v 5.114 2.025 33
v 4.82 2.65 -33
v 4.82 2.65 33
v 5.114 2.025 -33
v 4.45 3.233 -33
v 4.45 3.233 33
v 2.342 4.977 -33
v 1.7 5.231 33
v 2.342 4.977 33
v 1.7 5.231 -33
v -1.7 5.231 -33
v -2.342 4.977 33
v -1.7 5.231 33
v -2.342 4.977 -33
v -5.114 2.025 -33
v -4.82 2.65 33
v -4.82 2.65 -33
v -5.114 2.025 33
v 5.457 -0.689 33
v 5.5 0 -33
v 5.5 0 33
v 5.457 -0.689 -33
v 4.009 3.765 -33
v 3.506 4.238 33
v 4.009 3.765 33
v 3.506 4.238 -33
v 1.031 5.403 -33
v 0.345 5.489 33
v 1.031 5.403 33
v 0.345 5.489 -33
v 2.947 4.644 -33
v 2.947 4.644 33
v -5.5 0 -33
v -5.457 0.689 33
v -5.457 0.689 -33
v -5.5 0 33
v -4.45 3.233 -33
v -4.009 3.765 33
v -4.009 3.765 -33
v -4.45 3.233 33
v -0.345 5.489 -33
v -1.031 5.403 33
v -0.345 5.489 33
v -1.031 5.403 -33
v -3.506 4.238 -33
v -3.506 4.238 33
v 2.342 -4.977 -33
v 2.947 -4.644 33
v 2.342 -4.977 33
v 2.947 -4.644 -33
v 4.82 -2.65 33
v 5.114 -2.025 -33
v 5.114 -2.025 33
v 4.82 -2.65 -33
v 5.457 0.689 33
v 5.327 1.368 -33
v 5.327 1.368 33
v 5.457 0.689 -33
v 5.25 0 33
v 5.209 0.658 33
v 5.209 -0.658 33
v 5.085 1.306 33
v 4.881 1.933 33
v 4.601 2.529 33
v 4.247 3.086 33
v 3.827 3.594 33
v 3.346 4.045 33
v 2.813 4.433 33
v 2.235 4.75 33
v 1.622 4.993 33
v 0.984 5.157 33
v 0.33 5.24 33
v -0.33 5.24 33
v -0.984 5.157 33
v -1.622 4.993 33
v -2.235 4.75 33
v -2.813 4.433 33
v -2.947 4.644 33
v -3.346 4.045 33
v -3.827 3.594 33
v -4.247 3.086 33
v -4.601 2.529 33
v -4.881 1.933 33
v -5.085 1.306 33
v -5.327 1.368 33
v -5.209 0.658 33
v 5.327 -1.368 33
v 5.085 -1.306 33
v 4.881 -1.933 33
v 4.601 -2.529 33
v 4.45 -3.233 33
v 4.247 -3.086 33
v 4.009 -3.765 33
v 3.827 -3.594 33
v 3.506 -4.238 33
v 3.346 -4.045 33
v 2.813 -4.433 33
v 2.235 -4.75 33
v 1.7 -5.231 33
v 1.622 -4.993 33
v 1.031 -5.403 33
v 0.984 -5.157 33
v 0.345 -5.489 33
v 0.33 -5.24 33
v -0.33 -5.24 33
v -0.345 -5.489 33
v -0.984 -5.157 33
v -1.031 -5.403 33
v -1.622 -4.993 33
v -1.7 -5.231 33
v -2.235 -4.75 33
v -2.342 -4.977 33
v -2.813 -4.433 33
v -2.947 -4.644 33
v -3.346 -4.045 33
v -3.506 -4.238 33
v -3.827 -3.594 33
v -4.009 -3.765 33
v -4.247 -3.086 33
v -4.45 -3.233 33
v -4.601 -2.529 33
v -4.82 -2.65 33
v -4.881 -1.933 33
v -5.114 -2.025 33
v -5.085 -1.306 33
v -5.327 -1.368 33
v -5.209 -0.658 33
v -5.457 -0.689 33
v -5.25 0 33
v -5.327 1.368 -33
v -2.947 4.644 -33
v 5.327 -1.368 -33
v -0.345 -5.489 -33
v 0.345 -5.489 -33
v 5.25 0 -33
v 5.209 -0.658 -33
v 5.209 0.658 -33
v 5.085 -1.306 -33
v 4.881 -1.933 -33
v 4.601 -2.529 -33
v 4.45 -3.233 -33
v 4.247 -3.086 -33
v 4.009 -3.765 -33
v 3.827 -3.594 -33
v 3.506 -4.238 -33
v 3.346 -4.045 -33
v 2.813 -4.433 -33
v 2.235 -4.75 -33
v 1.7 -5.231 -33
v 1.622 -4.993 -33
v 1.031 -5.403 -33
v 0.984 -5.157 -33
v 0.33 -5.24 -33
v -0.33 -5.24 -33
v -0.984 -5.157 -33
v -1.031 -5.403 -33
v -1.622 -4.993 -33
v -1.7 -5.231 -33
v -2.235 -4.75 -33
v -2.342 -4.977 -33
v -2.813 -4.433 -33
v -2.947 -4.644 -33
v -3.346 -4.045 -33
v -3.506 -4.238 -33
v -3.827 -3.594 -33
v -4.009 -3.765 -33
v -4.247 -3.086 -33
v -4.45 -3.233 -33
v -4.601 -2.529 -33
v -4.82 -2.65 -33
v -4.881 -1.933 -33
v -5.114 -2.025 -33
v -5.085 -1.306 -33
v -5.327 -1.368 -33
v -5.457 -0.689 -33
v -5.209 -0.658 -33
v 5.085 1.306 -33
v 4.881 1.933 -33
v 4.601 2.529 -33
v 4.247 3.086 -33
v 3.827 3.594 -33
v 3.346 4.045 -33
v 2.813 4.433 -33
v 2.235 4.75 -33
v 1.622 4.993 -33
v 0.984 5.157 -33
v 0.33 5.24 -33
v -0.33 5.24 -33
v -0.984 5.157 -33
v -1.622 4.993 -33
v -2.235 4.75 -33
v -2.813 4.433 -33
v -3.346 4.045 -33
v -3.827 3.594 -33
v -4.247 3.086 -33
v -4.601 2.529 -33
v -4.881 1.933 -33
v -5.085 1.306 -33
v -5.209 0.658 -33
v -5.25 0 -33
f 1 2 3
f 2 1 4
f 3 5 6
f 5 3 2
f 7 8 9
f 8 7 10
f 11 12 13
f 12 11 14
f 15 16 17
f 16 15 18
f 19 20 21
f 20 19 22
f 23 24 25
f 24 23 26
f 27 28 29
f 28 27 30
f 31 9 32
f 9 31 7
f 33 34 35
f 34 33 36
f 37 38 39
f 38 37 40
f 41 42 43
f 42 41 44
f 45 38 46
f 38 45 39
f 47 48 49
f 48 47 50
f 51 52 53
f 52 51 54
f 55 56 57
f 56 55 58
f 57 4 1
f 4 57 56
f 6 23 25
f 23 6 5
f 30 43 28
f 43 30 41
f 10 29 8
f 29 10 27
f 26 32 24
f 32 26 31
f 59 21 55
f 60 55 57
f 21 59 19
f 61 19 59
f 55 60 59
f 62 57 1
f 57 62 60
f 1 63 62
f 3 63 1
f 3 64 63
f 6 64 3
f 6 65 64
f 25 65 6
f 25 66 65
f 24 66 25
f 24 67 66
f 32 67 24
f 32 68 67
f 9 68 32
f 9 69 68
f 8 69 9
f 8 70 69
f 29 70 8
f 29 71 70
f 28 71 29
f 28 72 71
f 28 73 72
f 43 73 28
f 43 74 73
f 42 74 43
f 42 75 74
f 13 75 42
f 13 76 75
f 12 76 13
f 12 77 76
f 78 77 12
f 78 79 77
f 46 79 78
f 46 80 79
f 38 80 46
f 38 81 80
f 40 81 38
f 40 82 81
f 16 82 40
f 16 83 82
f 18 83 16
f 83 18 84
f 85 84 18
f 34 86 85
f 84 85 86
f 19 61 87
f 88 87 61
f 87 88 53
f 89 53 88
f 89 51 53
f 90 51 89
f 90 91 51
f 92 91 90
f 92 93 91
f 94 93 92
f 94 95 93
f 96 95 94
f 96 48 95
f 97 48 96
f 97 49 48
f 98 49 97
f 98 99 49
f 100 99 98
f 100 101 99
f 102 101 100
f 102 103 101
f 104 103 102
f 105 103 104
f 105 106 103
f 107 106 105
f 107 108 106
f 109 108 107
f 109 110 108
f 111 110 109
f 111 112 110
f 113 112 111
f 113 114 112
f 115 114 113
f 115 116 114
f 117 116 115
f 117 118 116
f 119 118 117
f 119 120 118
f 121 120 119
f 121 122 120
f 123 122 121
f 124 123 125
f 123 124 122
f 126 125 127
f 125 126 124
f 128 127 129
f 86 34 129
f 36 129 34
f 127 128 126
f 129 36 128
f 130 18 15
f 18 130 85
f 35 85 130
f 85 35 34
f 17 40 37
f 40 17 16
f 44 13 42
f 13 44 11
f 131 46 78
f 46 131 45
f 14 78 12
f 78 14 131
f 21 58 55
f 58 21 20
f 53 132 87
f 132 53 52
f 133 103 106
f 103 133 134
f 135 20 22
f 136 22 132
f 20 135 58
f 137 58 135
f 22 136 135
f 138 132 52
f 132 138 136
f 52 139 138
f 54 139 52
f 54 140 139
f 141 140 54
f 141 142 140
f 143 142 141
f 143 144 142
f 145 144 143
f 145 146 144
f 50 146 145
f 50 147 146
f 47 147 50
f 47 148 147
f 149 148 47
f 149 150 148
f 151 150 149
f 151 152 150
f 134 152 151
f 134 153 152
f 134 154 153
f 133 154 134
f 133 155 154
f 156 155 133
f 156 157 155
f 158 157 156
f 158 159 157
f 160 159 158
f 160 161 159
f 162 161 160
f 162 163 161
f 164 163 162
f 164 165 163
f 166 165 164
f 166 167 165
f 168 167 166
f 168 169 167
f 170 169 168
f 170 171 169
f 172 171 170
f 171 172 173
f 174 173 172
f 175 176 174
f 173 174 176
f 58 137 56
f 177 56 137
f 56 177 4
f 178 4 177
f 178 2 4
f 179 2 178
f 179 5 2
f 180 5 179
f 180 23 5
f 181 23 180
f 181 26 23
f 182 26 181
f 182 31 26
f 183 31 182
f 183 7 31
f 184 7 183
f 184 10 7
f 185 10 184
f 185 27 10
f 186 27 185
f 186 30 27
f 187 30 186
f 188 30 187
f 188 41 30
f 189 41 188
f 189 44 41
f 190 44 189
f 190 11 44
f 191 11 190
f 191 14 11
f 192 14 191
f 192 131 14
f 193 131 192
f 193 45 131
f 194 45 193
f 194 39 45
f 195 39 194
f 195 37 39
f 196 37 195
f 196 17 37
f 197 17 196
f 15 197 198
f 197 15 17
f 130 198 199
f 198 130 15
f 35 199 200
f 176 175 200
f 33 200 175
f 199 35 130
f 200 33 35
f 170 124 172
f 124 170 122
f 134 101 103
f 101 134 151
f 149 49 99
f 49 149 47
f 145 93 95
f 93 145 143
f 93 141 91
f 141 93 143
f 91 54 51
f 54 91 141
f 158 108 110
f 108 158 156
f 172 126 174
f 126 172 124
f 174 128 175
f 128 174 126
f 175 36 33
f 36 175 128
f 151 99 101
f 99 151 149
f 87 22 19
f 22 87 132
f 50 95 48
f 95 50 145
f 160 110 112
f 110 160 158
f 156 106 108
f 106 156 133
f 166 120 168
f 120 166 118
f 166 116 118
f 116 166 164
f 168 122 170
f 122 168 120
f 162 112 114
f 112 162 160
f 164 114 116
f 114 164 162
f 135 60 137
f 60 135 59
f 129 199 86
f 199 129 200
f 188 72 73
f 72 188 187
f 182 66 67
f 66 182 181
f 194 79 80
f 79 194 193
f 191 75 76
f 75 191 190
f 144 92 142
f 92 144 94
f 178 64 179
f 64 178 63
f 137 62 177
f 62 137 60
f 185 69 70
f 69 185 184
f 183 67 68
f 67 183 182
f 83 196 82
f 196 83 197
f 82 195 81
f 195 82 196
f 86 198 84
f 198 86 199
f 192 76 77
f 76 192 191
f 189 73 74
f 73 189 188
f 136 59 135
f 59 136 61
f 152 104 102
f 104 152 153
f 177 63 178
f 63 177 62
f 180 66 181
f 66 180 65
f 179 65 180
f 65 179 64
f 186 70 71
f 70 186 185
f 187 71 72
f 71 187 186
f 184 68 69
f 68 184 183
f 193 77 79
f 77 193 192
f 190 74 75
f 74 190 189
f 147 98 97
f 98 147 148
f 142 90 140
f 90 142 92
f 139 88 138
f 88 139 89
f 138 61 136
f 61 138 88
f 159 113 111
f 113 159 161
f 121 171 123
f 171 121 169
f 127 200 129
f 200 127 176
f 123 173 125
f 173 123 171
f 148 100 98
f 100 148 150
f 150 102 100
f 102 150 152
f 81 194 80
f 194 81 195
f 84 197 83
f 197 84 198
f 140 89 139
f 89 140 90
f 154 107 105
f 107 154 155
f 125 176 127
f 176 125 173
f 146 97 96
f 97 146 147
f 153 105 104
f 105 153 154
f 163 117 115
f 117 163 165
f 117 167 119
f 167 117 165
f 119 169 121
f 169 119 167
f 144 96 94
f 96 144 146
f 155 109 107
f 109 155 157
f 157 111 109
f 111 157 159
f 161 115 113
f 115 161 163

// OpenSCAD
$fn = 50;


difference() {
	union() {
		translate(v = [0, 0, -33.0000000000]) {
			cylinder(h = 66, r = 5.5000000000);
		}
	}
	union() {
		translate(v = [0, 0, -100.0000000000]) {
			cylinder(h = 200, r = 5.2500000000);
		}
	}
}
